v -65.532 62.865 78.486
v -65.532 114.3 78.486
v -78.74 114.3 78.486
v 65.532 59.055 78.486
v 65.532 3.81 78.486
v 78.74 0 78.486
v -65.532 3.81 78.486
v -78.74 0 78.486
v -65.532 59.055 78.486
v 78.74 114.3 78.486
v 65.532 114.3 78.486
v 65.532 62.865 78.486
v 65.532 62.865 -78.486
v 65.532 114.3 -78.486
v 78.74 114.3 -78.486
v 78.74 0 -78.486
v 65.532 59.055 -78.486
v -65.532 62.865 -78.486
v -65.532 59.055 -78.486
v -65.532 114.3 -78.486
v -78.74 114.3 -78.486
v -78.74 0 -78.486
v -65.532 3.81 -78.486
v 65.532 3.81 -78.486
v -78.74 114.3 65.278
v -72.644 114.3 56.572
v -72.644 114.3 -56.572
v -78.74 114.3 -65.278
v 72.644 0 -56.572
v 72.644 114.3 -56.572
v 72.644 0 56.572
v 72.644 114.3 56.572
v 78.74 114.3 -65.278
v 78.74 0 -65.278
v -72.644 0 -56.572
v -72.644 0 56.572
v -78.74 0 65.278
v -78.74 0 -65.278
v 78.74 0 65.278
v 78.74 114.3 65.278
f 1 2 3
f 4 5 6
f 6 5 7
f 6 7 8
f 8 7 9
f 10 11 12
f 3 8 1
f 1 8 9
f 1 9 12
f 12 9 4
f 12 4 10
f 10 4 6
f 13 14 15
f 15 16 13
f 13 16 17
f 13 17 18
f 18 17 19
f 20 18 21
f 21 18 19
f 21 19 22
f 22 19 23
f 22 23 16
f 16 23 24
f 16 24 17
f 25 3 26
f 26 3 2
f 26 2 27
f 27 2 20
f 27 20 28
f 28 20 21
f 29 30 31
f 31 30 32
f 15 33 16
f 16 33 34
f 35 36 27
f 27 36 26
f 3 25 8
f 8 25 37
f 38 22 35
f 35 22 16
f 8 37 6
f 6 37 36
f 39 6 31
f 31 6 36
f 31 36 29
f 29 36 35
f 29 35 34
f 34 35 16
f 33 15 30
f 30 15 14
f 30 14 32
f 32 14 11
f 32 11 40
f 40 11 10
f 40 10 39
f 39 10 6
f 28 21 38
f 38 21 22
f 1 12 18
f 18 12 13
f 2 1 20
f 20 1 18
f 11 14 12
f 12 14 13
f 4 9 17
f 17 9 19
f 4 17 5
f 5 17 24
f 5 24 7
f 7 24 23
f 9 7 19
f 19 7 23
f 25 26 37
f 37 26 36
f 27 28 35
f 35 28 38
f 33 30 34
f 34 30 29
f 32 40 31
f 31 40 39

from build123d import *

# Parameters (mm, degrees)
SKETCH1_W           = 6.096
SKETCH1_H           = 13.208
BOSS_EXTRUDE1_DEPTH = 114.3
SKETCH3_W           = 131.064
SKETCH3_H           = 55.245
SKETCH3_H_2         = 51.435
CUT_EXTRUDE2_DEPTH  = 304.8
BOSS_EXTRUDE2_DEPTH = 114.3


with BuildPart() as part:
    # Sketch1 → Boss-Extrude1 (new body)
    with BuildSketch(Plane(origin=(0, 0, 0), x_dir=(1, 0, 0), z_dir=(0, 1, 0))):
        Polygon((72.644, 78.486), (0, 78.486), (0, 0), (72.644, 0), (72.644, 56.572009751), (72.644, 65.278), align=None)
        with Locations((75.692, 71.882)):
            Rectangle(SKETCH1_W, SKETCH1_H)
        Polygon((72.644, 0), (0, 0), (0, -78.486), (72.644, -78.486), (72.644, -65.278), (72.644, -56.572009751), align=None)
        Polygon((0, -78.486), (0, 0), (-72.644, 0), (-72.644, -56.572009751), (-72.644, -65.278), (-72.644, -78.486), align=None)
        with Locations((-75.692, -71.882)):
            Rectangle(SKETCH1_W, SKETCH1_H)
        Polygon((0, 0), (0, 78.486), (-72.644, 78.486), (-72.644, 65.278), (-72.644, 56.572009751), (-72.644, 0), align=None)
        with Locations((-75.692, 71.882)):
            Rectangle(SKETCH1_W, SKETCH1_H)
        with Locations((75.692, -71.882)):
            Rectangle(SKETCH1_W, SKETCH1_H)
    extrude(amount=BOSS_EXTRUDE1_DEPTH)

    # Sketch3 → Cut-Extrude2 (cut)
    with BuildSketch(Plane.XY.offset(78.486)):
        with Locations((0, 31.4325)):
            Rectangle(SKETCH3_W, SKETCH3_H)
        with Locations((0, 88.5825)):
            Rectangle(SKETCH3_W, SKETCH3_H_2)
    extrude(amount=-CUT_EXTRUDE2_DEPTH, mode=Mode.SUBTRACT)

    # Sketch4 → Boss-Extrude2 (add)
    with BuildSketch(Plane.XZ):
        Polygon((-78.74, 65.278), (-72.644, 65.278), (-72.644, 56.572009751), align=None)
        Polygon((-72.644, -65.278), (-78.74, -65.278), (-72.644, -56.572009751), align=None)
        Polygon((72.644, -65.278), (72.644, -56.572009751), (78.74, -65.278), align=None)
        Polygon((72.644, 56.572009751), (72.644, 65.278), (78.74, 65.278), align=None)
    extrude(amount=-BOSS_EXTRUDE2_DEPTH)


solid = part.part
